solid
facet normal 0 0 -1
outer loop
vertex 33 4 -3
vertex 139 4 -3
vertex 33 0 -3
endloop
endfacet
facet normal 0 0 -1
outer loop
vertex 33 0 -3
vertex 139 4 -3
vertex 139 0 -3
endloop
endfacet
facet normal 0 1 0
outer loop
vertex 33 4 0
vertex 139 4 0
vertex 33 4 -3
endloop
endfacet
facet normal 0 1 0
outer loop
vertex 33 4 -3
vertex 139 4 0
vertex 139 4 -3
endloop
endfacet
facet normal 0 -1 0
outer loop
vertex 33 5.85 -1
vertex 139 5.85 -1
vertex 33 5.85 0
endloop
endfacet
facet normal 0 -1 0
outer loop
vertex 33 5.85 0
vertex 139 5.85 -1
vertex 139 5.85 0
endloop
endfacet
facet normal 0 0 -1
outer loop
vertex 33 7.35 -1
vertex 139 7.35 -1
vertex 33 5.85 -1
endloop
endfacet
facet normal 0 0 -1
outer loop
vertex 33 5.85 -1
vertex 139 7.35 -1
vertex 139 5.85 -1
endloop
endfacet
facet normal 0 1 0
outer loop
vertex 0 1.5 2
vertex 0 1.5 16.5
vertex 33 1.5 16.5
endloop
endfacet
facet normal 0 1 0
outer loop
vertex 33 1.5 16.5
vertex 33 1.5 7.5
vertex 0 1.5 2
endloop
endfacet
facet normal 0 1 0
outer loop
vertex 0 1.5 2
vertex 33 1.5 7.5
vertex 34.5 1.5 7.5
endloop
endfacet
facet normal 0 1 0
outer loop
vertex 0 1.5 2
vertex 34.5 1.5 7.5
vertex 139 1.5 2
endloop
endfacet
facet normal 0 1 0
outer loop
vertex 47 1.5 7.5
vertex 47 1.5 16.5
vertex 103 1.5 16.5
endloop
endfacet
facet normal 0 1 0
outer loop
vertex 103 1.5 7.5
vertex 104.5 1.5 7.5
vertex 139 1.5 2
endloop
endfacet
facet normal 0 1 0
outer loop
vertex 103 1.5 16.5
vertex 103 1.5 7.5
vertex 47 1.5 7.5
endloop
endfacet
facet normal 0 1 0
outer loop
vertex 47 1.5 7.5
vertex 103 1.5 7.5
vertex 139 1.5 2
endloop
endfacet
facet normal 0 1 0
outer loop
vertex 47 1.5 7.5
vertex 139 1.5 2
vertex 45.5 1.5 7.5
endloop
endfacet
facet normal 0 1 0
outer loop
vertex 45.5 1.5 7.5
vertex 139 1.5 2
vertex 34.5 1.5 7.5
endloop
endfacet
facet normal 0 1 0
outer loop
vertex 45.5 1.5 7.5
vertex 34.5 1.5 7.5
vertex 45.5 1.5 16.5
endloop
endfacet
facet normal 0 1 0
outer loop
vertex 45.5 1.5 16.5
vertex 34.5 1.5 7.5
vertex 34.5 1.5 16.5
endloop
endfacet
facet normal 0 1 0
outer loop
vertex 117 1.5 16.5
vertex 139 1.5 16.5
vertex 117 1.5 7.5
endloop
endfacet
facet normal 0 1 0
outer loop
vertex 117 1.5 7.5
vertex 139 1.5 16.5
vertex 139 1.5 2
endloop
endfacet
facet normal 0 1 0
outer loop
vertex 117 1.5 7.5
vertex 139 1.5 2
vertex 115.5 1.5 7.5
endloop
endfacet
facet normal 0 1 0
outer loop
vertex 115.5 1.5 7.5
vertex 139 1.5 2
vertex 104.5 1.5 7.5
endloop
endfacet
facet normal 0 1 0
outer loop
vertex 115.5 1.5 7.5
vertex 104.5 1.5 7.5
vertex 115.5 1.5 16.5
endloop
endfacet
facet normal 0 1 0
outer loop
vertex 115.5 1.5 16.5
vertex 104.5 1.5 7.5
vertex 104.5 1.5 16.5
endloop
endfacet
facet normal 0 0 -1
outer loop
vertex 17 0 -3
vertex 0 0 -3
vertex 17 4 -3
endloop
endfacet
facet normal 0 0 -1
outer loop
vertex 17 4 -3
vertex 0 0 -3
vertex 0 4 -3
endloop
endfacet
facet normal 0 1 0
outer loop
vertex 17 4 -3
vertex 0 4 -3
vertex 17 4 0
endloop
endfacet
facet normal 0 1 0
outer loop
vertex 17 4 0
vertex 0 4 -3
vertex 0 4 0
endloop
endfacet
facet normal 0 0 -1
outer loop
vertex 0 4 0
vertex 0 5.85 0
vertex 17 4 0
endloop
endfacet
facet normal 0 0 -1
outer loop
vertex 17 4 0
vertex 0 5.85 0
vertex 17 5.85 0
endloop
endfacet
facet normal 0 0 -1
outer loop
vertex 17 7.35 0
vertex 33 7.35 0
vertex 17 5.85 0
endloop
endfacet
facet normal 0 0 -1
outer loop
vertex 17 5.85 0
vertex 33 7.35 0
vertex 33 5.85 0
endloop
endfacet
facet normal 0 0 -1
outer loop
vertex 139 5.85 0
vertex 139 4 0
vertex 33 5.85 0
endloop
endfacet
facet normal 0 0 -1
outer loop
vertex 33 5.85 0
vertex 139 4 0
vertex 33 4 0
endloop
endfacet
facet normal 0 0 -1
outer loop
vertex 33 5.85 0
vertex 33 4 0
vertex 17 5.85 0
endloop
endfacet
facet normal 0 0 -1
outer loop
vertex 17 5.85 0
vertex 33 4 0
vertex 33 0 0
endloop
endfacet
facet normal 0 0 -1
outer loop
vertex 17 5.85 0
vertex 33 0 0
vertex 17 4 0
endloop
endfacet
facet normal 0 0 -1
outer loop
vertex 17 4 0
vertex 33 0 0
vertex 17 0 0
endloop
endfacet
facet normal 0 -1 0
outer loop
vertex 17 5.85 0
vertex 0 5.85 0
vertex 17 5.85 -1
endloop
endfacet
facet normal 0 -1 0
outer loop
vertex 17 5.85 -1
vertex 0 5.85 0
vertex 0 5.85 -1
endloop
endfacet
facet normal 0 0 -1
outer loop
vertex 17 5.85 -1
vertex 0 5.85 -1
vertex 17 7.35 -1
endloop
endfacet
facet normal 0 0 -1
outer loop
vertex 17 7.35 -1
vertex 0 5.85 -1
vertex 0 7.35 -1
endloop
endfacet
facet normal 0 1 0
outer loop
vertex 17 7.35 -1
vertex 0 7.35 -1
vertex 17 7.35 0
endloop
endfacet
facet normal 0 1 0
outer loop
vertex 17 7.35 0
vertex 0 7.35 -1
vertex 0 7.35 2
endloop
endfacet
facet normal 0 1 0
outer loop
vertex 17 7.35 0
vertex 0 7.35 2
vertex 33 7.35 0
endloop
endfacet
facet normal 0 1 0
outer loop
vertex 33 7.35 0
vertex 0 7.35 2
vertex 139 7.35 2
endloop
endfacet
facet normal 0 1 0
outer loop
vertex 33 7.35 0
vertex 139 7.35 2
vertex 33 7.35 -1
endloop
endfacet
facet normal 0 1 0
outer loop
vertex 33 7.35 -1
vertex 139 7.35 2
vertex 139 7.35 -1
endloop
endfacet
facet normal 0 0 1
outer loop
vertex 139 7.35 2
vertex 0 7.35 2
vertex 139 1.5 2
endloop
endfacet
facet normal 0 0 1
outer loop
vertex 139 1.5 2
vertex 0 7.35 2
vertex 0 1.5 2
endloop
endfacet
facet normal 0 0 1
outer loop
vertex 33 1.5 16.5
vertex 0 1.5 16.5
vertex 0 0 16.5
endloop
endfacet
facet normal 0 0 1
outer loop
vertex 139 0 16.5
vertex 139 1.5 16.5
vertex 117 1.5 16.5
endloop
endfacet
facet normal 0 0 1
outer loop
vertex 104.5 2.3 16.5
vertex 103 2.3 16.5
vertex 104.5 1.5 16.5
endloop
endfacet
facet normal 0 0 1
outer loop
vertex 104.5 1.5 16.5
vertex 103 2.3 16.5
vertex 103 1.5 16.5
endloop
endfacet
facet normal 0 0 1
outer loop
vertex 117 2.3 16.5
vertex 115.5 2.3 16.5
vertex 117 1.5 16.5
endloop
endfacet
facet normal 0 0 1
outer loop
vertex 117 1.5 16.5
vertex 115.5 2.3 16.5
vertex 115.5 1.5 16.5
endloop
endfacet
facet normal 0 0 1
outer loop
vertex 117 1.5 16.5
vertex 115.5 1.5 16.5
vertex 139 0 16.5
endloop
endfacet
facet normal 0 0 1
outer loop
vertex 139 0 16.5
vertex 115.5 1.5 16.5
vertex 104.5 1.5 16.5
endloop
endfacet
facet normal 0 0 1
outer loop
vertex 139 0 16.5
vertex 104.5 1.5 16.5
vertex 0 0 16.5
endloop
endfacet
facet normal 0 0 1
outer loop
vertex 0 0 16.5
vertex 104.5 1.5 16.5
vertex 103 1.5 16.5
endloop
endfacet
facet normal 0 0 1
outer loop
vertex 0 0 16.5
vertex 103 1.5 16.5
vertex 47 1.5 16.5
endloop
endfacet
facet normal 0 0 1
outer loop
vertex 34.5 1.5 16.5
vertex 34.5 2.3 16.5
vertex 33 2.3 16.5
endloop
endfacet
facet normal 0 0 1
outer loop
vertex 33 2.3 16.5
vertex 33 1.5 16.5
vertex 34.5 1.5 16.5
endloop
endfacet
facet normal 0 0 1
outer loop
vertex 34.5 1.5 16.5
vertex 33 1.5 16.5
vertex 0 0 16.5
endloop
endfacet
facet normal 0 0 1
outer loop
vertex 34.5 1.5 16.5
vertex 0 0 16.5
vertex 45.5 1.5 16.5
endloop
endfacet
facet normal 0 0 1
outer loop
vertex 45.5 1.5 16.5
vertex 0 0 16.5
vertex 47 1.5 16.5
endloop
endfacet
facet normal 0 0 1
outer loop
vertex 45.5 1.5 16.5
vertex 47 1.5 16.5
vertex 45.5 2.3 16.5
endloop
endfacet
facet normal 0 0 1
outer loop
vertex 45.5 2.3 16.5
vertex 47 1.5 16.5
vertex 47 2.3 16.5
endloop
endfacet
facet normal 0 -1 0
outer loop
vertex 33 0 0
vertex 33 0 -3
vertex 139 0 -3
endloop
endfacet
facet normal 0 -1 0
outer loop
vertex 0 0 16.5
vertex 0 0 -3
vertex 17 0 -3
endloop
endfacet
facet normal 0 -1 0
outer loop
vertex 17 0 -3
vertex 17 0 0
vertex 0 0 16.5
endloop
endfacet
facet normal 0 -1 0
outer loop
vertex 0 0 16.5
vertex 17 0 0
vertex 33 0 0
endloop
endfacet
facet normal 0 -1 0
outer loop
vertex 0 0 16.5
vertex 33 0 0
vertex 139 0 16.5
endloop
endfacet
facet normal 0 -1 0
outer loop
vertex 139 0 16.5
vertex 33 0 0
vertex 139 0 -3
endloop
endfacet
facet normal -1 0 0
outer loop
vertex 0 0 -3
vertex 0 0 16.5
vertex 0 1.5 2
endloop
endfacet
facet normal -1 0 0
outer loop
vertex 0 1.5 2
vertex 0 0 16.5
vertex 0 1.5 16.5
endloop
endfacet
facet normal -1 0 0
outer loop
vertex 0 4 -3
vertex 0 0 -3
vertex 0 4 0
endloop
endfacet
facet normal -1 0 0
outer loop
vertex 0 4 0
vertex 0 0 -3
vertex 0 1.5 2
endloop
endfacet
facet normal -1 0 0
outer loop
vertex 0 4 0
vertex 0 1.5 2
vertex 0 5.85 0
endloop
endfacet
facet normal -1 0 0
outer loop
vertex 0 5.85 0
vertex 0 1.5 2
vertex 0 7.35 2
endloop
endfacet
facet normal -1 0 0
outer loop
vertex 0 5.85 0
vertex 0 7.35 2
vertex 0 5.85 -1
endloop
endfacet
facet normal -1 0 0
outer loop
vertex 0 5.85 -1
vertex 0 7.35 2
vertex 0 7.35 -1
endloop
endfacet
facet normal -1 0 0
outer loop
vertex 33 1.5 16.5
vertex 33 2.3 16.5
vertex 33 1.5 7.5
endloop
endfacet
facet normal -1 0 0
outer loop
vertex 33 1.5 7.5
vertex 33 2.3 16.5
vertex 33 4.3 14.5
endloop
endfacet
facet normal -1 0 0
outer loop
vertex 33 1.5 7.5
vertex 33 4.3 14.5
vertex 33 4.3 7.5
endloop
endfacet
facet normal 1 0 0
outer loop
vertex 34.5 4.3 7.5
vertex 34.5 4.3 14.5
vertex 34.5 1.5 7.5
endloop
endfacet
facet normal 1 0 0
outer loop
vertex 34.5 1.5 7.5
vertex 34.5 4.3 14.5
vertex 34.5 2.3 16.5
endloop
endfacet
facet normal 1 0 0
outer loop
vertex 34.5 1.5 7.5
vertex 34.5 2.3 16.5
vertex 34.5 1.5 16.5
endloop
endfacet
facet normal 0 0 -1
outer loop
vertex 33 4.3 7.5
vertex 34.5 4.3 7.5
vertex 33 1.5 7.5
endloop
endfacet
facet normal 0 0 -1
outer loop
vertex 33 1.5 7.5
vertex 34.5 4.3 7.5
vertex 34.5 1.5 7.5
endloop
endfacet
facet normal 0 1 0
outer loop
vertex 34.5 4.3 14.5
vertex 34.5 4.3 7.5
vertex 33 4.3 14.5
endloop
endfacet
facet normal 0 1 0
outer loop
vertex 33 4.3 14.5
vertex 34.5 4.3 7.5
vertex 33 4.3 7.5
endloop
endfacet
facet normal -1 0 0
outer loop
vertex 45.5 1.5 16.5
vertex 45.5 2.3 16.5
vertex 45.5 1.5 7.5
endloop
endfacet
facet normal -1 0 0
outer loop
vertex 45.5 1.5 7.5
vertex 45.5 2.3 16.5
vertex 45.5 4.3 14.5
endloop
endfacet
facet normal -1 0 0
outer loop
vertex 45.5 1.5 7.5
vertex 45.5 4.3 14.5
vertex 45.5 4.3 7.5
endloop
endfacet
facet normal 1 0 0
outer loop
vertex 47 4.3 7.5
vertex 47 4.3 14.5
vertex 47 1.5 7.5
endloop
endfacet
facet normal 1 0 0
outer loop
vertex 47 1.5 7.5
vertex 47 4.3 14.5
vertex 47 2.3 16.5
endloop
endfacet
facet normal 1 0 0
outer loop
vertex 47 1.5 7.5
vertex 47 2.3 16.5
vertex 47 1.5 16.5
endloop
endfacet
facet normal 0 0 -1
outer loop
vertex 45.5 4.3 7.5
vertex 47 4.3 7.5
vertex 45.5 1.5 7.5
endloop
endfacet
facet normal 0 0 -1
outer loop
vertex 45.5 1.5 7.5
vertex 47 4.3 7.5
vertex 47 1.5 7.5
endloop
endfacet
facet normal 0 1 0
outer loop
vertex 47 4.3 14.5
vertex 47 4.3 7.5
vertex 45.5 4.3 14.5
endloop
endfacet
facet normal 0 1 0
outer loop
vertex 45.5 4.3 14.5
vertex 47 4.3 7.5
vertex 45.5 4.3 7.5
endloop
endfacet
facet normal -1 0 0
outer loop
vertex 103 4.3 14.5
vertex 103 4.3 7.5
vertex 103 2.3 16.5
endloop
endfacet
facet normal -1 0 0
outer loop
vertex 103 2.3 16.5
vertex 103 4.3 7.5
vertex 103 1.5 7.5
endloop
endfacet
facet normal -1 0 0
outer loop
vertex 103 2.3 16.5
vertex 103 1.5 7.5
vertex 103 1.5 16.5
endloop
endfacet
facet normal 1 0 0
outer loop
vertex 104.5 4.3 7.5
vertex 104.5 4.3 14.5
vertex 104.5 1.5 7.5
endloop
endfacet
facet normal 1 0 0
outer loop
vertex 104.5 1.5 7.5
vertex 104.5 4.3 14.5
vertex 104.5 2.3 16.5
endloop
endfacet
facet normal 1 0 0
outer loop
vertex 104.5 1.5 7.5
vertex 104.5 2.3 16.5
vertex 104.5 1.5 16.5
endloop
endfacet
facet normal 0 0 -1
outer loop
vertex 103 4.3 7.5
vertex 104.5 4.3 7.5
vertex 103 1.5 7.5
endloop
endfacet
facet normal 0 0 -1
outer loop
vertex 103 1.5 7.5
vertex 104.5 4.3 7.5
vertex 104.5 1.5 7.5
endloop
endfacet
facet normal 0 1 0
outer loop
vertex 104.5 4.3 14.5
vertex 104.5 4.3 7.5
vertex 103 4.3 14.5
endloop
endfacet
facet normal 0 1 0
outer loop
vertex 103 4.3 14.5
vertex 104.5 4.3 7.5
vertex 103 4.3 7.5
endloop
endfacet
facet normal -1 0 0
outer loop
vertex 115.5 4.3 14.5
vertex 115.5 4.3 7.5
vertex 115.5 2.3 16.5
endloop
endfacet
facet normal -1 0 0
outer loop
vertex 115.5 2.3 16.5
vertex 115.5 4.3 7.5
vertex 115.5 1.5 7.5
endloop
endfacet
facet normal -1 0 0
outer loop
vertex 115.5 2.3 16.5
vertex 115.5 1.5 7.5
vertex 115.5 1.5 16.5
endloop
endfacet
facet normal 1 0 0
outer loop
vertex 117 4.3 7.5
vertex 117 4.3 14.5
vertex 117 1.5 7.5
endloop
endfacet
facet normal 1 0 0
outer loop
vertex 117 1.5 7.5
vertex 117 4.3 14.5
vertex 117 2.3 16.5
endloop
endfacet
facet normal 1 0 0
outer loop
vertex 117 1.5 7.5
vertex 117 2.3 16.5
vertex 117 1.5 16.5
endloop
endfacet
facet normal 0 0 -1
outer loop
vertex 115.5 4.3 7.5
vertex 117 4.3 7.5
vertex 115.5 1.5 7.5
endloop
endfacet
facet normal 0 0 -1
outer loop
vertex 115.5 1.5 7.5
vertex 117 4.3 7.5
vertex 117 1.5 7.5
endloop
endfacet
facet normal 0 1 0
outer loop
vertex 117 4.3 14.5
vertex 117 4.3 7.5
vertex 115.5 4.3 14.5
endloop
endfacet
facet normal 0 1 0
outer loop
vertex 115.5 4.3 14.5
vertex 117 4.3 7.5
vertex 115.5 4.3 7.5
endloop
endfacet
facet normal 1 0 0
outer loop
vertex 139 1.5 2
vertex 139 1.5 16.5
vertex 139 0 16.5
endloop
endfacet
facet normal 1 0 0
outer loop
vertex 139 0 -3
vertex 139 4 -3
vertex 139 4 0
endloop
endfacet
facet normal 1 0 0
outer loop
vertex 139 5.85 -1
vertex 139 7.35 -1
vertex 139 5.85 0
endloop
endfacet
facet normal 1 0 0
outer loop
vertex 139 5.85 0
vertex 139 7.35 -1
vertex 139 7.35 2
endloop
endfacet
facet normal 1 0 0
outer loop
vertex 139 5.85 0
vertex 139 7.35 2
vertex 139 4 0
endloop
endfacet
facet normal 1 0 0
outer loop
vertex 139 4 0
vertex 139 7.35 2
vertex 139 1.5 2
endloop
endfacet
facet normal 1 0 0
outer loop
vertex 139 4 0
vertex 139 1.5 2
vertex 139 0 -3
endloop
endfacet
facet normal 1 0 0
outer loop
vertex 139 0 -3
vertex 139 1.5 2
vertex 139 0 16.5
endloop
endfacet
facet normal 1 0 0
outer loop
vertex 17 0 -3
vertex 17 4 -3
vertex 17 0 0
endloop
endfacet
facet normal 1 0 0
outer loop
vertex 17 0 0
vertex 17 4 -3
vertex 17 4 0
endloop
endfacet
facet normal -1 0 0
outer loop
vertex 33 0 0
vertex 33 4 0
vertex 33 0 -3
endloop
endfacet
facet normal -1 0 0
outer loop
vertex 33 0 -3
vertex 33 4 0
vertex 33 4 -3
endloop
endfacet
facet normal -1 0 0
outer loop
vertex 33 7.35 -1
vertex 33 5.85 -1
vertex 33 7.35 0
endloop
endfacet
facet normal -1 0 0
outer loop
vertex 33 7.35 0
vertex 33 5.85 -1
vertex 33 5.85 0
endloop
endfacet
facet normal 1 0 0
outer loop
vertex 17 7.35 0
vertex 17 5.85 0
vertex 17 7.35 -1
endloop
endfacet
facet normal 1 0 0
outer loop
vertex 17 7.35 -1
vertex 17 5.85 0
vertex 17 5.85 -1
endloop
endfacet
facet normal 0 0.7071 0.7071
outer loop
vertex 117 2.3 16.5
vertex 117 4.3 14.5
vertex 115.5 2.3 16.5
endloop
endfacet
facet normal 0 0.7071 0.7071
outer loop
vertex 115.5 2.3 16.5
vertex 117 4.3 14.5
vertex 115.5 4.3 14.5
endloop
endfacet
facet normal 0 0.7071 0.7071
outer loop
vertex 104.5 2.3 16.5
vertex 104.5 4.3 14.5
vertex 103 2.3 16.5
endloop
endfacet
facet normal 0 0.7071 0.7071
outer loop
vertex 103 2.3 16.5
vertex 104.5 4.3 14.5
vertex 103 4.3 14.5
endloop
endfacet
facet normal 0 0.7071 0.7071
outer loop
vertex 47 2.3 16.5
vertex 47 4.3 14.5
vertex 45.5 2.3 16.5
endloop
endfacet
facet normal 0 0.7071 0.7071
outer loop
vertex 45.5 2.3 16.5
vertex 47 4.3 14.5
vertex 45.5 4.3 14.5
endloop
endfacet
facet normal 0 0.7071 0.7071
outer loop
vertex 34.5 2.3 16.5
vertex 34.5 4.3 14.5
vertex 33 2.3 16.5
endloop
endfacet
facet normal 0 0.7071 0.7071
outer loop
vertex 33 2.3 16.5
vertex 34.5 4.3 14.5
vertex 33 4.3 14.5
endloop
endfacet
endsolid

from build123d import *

# Parameters (mm, degrees)
BOSS_EXTRUDE1_DEPTH = 150
SKETCH2_W           = 1.5
SKETCH2_H           = 9
BOSS_EXTRUDE2_DEPTH = 2.8
SKETCH4_W           = 16
SKETCH4_H           = 3
SKETCH4_W_2         = 11
SKETCH4_H_2         = 19.5
CUT_EXTRUDE2_DEPTH  = 22
CHAMFER1_SIZE       = 2


with BuildPart() as part:
    # Sketch1 → Boss-Extrude1 (new body)
    with BuildSketch(Plane(origin=(0, 0, 0), x_dir=(0, 0, -1), z_dir=(1, 0, 0))):
        Polygon((0, 0), (-16.5, 0), (-16.5, 1.5), (-2, 1.5), (-2, 4), (-2, 7.35), (1, 7.35), (1, 5.85), (0, 5.85), (0, 4), (3, 4), (3, 0), align=None)
    extrude(amount=BOSS_EXTRUDE1_DEPTH)

    # Sketch2 → Boss-Extrude2 (add)
    with BuildSketch(Plane(origin=(0, 1.5, 0), x_dir=(1, 0, 0), z_dir=(0, 1, 0))):
        with Locations((33.75, -12)):
            Rectangle(SKETCH2_W, SKETCH2_H)
        with Locations((46.25, -12)):
            Rectangle(SKETCH2_W, SKETCH2_H)
        with Locations((103.75, -12)):
            Rectangle(SKETCH2_W, SKETCH2_H)
        with Locations((116.25, -12)):
            Rectangle(SKETCH2_W, SKETCH2_H)
    extrude(amount=BOSS_EXTRUDE2_DEPTH)

    # Sketch4 → Cut-Extrude2 (cut)
    with BuildSketch(Plane(origin=(0, 7.35, 0), x_dir=(1, 0, 0), z_dir=(0, 1, 0))):
        with Locations((25, 1.5)):
            Rectangle(SKETCH4_W, SKETCH4_H)
        with Locations((144.5, -6.75)):
            Rectangle(SKETCH4_W_2, SKETCH4_H_2)
    extrude(amount=-CUT_EXTRUDE2_DEPTH, mode=Mode.SUBTRACT)

    # Chamfer1
    chamfer1_edges = [part.edges().sort_by_distance(p)[0] for p in [
        (33.75, 4.3, 16.5),
        (46.25, 4.3, 16.5),
        (103.75, 4.3, 16.5),
        (116.25, 4.3, 16.5),
    ]]
    chamfer(chamfer1_edges, length=CHAMFER1_SIZE)


solid = part.part
